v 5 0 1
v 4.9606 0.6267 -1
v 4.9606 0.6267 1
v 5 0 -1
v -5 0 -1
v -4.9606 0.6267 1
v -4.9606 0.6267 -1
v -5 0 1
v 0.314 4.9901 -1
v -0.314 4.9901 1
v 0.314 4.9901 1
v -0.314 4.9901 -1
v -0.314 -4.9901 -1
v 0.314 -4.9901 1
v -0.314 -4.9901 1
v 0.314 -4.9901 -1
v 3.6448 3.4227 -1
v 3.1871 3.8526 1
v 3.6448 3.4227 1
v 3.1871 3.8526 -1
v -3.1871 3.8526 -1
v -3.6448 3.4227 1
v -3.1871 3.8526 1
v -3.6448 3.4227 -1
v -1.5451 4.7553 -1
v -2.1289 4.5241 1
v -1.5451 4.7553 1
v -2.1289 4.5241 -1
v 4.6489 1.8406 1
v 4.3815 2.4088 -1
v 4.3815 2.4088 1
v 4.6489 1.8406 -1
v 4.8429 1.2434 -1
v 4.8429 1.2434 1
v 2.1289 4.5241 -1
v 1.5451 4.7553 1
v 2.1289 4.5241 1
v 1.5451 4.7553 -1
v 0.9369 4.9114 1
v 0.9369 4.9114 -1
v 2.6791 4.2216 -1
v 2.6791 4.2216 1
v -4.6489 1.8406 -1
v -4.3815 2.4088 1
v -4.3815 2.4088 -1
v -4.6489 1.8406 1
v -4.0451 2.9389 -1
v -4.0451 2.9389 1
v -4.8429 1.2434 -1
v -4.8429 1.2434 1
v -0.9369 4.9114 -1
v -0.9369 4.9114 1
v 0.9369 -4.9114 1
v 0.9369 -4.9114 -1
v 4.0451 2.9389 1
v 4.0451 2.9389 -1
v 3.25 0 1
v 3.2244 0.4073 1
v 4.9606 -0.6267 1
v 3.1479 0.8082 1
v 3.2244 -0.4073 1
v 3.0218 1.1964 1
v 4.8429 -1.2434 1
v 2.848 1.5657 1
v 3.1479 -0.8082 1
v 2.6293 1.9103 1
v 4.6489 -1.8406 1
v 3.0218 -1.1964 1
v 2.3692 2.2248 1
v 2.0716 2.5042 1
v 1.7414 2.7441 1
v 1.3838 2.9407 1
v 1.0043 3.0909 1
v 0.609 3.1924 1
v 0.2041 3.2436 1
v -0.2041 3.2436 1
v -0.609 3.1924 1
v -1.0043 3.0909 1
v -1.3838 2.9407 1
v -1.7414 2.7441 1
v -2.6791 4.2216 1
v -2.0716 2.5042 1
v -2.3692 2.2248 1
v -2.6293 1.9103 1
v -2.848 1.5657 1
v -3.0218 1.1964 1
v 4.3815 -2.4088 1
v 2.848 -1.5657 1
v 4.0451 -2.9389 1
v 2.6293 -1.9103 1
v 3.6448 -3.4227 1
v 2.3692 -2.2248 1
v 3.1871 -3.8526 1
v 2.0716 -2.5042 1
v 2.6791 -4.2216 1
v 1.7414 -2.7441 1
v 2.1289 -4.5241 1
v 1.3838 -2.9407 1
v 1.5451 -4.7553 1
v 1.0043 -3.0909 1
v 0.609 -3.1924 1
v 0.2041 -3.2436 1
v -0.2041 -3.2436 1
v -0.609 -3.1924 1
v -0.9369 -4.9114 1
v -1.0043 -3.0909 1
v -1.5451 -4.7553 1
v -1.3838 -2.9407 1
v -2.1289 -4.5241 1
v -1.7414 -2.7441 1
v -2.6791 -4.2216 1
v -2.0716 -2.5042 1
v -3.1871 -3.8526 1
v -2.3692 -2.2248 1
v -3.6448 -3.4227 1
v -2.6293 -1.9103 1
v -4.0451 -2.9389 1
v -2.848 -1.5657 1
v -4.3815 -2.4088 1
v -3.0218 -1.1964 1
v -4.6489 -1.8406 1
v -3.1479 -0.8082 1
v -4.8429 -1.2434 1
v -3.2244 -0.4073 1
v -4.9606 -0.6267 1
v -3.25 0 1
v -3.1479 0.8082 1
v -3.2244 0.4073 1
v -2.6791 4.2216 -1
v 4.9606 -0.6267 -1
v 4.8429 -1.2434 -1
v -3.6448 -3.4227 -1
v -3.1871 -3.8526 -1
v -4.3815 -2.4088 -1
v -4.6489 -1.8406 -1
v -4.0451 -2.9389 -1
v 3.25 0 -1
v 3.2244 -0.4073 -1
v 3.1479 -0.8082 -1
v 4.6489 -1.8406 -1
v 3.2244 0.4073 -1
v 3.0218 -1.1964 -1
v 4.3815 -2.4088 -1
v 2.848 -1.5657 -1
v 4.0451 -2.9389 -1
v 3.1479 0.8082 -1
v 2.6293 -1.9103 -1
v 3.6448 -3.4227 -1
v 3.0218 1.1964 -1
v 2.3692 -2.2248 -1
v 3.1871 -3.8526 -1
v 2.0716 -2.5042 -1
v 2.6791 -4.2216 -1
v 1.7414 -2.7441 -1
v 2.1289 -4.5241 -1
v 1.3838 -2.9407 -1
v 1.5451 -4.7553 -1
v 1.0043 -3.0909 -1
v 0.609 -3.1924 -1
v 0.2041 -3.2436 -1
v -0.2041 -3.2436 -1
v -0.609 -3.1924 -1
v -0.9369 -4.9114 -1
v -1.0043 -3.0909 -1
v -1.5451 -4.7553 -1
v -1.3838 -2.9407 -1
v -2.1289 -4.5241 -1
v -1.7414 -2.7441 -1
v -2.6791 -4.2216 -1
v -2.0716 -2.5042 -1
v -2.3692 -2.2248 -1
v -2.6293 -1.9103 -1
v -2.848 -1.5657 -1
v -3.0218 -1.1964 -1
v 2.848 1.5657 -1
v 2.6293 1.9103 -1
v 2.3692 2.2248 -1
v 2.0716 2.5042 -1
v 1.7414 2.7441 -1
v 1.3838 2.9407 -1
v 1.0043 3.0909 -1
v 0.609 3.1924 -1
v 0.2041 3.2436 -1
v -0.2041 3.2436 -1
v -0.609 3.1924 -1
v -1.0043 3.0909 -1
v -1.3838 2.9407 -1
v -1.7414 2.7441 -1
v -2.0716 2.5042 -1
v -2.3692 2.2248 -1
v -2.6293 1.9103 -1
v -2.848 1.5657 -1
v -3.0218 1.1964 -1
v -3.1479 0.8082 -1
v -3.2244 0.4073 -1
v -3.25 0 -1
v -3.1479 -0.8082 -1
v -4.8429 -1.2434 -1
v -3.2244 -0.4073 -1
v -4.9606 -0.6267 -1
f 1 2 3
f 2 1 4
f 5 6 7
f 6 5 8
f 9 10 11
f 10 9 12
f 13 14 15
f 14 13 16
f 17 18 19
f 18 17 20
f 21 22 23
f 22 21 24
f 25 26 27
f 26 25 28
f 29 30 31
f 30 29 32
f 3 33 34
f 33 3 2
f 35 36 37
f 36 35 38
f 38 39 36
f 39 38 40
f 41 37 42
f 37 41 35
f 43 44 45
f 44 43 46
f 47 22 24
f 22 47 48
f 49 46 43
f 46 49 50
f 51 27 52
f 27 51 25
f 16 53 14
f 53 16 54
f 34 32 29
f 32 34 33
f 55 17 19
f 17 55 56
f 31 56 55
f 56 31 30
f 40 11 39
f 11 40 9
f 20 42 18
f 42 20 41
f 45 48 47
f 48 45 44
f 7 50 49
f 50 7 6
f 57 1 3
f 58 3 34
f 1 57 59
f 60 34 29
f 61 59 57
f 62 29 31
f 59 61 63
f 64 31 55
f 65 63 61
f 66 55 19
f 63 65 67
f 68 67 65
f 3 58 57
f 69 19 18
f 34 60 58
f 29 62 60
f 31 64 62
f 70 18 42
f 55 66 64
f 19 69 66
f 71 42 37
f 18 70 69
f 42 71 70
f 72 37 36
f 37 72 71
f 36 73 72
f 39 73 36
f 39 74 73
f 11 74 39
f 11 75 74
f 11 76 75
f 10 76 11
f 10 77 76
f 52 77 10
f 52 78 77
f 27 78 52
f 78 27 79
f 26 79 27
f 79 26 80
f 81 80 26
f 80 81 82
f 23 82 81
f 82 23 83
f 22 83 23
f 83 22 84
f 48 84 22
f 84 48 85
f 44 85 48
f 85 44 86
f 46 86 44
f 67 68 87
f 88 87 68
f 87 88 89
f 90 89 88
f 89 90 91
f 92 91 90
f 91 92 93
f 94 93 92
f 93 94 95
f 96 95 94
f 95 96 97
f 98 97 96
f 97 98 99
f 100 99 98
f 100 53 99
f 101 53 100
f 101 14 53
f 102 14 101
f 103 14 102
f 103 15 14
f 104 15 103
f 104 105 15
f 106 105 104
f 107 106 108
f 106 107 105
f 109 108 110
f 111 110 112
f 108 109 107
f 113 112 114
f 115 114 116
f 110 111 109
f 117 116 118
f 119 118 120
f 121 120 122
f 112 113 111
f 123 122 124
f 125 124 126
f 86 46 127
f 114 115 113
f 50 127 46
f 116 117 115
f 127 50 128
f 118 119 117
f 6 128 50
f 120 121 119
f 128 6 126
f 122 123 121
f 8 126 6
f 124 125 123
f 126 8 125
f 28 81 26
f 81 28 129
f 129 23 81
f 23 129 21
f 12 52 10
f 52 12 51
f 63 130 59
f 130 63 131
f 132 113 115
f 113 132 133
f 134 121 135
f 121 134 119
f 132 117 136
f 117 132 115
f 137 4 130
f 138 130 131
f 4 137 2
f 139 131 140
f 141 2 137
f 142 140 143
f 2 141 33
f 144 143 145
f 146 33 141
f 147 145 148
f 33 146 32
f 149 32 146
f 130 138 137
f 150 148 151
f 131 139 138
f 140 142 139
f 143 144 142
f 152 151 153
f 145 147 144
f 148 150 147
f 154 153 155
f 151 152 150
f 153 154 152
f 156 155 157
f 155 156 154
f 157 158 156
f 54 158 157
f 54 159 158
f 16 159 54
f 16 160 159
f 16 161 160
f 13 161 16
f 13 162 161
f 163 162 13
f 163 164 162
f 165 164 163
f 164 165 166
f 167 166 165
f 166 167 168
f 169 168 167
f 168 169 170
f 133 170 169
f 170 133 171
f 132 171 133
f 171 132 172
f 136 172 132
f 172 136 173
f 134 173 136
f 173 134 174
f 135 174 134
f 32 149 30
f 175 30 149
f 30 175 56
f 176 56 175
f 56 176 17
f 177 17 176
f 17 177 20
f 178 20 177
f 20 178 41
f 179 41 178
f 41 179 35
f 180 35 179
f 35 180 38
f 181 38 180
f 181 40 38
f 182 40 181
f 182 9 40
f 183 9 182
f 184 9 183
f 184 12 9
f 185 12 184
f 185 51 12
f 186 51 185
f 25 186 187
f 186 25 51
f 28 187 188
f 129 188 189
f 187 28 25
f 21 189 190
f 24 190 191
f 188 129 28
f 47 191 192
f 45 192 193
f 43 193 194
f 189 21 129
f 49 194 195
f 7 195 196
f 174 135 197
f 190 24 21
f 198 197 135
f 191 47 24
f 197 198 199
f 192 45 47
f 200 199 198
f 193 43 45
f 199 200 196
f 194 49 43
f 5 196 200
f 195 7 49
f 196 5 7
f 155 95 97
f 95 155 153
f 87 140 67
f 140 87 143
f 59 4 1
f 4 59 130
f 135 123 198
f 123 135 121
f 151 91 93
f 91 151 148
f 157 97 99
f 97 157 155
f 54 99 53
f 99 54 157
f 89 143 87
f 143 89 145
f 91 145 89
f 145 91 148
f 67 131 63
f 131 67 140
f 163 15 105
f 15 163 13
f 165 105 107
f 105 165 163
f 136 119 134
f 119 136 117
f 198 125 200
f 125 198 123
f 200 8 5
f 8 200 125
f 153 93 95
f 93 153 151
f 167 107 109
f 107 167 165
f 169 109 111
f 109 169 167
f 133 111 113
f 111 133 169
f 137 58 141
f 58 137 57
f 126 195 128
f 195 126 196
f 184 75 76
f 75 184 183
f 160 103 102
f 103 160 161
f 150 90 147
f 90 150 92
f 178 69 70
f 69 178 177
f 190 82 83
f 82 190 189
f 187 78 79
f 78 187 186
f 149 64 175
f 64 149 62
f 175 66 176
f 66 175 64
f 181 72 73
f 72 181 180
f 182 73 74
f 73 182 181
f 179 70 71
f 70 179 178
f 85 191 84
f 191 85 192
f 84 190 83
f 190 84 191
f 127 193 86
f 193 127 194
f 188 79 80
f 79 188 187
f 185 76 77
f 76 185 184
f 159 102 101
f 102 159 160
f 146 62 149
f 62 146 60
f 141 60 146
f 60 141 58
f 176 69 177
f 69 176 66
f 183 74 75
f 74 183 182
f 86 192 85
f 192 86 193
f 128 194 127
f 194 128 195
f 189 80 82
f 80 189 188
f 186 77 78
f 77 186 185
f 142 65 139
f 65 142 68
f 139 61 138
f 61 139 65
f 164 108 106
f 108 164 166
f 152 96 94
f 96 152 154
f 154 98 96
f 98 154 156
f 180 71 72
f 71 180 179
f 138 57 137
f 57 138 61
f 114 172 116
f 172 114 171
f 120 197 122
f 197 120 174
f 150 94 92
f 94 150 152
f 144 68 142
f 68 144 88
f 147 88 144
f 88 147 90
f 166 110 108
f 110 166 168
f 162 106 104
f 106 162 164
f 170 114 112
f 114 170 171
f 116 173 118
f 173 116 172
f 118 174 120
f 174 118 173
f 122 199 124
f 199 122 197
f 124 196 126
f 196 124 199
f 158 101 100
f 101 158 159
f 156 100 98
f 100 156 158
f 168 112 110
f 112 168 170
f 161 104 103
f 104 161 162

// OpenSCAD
$fn = 50;


difference() {
	union() {
		translate(v = [0, 0, -1.0000000000]) {
			cylinder(h = 2, r = 5.0000000000);
		}
	}
	union() {
		translate(v = [0, 0, -100.0000000000]) {
			cylinder(h = 200, r = 3.2500000000);
		}
	}
}
